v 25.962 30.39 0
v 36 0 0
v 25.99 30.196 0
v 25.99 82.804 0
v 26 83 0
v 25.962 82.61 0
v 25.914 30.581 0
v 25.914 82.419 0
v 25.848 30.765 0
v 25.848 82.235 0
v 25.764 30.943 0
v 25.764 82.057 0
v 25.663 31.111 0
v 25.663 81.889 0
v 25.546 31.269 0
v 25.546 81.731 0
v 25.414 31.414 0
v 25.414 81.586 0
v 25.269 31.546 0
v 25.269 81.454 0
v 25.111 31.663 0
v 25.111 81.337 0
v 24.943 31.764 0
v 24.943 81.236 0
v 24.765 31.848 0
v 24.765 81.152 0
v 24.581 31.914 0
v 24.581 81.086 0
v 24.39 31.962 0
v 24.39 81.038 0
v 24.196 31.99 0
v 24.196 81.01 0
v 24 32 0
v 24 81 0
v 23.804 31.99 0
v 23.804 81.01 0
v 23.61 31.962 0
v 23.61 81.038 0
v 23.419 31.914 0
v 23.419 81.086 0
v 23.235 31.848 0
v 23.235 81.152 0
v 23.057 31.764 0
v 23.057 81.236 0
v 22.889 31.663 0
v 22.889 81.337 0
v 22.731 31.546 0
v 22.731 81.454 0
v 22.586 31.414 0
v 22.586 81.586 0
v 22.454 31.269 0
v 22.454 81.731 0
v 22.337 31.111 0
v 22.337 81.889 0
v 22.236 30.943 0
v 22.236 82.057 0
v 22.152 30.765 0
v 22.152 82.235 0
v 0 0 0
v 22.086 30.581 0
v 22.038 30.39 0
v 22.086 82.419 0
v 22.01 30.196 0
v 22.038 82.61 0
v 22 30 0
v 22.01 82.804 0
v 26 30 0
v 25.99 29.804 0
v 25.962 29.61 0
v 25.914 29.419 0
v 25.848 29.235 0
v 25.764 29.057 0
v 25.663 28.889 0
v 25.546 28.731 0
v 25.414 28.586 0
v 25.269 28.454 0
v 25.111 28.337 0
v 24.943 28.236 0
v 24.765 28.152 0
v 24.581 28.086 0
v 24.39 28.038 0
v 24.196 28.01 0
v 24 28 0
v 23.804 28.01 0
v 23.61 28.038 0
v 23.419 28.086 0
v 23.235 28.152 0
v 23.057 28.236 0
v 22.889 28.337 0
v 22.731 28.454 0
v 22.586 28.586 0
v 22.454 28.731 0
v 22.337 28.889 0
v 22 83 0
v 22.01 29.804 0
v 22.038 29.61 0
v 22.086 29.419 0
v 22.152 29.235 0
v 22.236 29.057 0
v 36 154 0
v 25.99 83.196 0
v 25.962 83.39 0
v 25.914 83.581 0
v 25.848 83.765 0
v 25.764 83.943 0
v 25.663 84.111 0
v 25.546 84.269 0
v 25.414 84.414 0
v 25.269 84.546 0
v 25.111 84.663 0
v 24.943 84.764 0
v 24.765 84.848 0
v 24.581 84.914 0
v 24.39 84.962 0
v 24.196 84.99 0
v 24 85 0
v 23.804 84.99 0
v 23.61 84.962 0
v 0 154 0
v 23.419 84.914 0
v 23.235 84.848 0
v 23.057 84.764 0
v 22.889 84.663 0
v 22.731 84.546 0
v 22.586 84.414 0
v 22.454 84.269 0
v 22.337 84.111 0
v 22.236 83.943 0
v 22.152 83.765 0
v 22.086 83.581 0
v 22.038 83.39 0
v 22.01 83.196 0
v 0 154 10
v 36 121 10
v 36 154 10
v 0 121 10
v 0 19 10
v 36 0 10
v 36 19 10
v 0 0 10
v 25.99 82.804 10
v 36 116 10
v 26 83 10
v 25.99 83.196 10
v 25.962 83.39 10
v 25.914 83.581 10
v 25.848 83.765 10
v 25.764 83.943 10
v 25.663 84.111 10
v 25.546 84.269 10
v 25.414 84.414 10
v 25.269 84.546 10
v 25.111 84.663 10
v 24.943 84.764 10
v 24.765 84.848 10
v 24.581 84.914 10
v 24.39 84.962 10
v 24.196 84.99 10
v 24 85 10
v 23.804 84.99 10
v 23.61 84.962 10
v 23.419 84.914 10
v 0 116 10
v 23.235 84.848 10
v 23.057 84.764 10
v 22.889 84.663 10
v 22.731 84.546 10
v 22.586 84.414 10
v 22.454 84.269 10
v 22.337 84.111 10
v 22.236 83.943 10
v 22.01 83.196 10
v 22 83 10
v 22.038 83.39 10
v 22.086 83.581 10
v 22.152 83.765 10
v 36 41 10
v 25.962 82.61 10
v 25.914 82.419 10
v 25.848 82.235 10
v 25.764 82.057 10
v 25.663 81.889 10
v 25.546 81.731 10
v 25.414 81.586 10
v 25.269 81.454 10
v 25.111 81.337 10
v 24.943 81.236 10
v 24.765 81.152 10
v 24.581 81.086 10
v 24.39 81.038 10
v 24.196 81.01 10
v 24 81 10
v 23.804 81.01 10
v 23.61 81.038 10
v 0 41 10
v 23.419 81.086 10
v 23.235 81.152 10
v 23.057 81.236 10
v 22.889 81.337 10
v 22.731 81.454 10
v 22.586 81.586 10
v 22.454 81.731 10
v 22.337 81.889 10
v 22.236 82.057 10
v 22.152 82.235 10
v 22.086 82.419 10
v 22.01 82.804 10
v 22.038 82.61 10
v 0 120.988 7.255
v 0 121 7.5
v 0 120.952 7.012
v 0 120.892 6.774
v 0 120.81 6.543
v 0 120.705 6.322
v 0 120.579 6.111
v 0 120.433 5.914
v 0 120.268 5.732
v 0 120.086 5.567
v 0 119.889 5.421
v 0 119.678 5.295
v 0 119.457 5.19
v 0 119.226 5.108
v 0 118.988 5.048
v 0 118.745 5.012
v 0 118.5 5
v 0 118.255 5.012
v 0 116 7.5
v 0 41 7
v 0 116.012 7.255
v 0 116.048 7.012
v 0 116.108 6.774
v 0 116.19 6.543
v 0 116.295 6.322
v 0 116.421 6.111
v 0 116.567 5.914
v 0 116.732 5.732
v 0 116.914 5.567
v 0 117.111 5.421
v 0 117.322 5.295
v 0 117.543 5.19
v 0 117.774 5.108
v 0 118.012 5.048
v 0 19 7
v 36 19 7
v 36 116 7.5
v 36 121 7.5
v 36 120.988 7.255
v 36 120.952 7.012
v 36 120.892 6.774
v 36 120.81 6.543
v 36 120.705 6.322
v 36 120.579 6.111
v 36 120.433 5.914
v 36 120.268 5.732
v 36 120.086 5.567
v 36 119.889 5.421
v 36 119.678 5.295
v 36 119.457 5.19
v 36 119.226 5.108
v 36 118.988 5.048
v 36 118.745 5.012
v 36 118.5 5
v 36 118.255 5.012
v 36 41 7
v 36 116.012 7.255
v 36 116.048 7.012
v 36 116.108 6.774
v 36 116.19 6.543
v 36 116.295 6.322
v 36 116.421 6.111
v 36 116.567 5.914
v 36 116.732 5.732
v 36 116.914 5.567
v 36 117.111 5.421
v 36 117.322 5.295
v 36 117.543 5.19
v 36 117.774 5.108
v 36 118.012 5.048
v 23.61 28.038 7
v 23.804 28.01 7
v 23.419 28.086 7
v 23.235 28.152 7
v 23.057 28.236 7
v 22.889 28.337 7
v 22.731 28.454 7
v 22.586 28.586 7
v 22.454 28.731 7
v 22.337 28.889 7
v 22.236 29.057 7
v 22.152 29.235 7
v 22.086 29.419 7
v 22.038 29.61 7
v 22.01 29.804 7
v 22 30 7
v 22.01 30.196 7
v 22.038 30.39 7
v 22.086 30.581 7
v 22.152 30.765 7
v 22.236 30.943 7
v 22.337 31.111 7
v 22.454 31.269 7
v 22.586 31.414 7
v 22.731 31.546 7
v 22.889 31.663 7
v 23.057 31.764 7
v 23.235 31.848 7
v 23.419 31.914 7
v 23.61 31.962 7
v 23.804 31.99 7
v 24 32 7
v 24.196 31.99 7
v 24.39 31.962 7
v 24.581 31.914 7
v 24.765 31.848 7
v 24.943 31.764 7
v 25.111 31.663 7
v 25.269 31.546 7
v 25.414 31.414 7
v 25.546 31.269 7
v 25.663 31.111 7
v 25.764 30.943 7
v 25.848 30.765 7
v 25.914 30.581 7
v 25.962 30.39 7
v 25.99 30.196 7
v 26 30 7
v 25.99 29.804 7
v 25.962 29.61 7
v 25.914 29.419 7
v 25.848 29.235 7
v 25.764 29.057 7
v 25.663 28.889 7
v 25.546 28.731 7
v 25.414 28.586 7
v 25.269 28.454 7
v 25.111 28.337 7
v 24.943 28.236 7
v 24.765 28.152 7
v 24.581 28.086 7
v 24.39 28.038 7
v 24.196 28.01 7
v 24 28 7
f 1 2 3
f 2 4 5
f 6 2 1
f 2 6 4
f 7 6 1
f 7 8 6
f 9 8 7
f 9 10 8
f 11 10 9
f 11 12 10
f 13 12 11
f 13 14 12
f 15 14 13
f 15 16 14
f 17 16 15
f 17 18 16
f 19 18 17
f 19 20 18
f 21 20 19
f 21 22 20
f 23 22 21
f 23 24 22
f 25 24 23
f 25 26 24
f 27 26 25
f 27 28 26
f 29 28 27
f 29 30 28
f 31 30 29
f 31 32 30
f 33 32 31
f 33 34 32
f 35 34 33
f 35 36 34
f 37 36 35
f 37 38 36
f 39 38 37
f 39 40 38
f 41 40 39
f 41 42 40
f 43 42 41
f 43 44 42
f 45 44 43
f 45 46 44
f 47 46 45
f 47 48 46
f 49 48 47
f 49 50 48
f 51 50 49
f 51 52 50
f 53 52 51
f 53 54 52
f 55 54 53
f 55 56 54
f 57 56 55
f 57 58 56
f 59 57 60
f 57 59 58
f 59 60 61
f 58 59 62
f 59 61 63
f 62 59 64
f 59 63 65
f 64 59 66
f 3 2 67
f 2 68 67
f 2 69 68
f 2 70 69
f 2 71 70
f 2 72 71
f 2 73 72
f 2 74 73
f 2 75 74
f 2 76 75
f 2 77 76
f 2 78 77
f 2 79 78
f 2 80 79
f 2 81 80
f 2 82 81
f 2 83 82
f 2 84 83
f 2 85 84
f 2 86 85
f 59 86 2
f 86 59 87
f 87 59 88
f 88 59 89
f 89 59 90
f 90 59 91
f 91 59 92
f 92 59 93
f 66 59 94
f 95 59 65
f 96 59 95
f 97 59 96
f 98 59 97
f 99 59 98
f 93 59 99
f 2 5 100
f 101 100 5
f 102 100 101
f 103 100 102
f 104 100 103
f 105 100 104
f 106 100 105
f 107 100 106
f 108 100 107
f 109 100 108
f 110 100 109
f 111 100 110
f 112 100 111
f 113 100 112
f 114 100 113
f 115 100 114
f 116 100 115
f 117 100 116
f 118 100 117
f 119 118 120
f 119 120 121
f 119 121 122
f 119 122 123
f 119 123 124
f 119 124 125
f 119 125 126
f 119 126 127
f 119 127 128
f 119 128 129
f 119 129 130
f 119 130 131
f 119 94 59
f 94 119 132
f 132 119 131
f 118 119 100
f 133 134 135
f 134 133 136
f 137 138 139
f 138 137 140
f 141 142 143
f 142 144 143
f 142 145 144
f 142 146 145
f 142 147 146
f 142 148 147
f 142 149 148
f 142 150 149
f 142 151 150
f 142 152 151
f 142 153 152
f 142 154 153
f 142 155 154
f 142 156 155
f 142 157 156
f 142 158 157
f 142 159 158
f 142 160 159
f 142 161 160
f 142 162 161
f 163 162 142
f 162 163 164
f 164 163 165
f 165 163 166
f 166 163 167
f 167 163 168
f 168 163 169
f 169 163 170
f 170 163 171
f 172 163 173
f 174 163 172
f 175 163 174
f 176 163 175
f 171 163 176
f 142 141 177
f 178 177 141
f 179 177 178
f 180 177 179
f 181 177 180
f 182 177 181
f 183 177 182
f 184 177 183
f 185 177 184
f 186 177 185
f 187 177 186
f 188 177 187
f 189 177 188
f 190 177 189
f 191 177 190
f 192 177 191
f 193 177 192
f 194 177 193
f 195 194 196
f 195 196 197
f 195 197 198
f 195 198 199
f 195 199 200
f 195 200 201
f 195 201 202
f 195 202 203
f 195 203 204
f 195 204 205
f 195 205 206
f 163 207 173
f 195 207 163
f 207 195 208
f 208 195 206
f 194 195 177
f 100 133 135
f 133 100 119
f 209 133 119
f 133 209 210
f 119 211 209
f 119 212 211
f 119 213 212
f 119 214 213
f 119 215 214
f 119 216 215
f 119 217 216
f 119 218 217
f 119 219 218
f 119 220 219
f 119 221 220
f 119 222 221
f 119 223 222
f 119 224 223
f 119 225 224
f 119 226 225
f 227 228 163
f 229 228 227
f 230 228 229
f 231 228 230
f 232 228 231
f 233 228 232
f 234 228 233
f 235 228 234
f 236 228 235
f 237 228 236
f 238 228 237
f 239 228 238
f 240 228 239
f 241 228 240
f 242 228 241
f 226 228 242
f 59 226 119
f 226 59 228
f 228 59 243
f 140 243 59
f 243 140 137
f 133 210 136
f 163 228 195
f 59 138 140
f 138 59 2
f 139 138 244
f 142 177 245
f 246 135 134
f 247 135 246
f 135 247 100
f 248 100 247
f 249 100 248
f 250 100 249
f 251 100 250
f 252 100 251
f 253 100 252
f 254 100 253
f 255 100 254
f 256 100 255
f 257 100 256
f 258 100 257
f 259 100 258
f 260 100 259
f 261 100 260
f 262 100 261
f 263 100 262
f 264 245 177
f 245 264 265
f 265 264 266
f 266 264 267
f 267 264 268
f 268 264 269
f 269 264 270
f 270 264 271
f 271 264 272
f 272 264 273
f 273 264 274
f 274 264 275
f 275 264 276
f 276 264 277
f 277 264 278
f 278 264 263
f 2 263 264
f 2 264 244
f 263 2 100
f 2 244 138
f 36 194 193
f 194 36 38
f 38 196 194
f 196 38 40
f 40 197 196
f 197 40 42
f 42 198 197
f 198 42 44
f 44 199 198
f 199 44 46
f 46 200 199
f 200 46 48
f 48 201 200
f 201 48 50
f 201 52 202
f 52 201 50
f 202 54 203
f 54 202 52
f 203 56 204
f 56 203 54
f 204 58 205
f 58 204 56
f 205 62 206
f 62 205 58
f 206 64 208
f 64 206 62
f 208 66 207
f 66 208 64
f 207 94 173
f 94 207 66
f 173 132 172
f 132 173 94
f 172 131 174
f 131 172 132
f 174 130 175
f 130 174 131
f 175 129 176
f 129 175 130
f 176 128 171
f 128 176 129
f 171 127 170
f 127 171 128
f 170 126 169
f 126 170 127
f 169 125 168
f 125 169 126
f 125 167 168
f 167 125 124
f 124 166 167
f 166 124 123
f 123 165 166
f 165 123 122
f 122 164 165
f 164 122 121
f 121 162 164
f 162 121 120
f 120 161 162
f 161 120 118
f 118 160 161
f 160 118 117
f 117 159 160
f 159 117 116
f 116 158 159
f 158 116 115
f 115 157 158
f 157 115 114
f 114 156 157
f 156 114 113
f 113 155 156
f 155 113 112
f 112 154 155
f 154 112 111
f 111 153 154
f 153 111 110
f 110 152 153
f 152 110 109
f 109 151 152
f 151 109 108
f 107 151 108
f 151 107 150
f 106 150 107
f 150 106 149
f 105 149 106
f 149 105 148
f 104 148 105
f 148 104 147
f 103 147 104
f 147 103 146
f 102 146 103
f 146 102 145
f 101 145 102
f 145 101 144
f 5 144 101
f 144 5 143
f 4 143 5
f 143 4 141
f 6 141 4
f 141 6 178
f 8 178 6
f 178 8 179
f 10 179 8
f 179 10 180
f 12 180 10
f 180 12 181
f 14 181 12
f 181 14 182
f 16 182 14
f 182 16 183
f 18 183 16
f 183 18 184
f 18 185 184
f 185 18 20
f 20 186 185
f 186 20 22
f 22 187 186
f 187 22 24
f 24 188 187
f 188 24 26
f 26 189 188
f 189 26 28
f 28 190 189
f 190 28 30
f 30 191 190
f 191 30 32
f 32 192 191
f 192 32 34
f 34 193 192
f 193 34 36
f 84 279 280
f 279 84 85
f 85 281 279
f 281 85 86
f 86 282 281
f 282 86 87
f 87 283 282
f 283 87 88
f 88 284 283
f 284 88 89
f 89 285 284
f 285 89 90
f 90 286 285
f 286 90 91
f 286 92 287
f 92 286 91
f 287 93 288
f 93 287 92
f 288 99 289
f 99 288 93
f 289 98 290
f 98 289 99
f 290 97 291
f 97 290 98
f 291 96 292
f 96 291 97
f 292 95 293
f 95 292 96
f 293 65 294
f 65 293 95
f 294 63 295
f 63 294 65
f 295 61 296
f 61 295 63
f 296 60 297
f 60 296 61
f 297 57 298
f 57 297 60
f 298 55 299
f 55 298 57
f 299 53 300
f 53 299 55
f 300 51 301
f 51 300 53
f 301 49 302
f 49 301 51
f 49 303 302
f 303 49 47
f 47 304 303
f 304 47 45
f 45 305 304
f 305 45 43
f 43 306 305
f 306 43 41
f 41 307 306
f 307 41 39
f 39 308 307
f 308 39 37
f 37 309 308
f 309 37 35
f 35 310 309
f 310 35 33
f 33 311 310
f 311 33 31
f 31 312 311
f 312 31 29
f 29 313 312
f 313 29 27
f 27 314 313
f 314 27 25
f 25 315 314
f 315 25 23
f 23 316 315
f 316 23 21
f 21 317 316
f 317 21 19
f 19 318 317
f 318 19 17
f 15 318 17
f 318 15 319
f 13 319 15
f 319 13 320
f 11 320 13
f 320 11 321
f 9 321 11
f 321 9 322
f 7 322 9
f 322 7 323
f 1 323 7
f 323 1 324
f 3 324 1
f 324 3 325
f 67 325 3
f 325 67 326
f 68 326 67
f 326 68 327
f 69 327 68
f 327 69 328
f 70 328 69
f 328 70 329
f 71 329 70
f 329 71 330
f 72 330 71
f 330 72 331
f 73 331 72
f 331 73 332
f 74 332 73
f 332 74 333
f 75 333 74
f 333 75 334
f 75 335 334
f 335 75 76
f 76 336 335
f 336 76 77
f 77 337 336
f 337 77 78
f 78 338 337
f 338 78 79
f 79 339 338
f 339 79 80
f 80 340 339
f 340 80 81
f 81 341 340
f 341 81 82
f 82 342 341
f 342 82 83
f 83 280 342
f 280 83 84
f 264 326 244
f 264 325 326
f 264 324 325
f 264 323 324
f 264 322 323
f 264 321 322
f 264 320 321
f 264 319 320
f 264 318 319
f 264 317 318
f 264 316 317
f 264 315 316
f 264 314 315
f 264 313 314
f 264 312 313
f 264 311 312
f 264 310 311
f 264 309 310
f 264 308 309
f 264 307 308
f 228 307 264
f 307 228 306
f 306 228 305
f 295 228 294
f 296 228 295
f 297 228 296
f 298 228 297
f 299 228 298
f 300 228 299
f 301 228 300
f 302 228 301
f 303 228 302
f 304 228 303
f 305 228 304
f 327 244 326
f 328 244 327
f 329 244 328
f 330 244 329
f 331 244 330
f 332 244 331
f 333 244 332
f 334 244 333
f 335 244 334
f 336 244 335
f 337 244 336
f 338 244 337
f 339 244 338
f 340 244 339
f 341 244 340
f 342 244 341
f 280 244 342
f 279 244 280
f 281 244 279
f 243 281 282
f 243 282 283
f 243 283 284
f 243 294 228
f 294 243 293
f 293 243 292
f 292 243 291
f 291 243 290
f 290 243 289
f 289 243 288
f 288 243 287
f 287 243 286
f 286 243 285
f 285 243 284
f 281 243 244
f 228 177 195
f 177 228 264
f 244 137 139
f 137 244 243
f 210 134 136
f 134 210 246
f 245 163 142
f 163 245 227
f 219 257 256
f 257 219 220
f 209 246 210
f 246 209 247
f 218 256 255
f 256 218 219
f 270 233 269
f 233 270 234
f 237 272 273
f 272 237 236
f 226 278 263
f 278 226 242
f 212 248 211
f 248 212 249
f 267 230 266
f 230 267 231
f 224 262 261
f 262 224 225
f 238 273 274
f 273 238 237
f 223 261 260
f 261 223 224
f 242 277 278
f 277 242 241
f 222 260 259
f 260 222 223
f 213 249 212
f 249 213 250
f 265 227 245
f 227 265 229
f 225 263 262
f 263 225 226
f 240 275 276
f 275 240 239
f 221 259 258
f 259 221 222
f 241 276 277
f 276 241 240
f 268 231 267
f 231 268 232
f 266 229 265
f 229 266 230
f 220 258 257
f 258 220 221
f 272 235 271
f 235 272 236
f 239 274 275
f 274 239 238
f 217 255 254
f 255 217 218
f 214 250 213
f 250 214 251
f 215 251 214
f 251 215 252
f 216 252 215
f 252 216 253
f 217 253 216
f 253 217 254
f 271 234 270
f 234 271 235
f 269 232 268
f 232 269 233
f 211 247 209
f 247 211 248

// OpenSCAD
$fn = 64;

line_1st = 30.00;

bar = [36.00, 154.00, 10.00];

hole_y_pos = 24.0;

hole_1st_line = 30.00;
hole_2nd_line = hole_1st_line + 53.00;
hole_3rd_line = hole_2nd_line + 33.00;

left_adapter_height = 3.00;


bar_space = 2.5;

difference() {
    linear_extrude(bar[2]) {
        difference() {
            square([bar[0], bar[1]]);
            translate([hole_y_pos, hole_1st_line])
                circle(2);
            translate([hole_y_pos, hole_2nd_line])
                circle(2);
        }
    }
    
    translate([0, 30.00 - 11.00, bar[2] - left_adapter_height])
        linear_extrude(left_adapter_height)
            square([bar[0], 22.00]);
    
    translate([0, hole_3rd_line, bar[2] - bar_space])
        linear_extrude(bar_space)
            square([bar[0], bar_space * 2]);
    
    translate([0, hole_3rd_line + bar_space, bar[2] - bar_space])
        rotate([90, 90, 90])
                cylinder(bar[0], r1 = bar_space, r2 = bar_space);
}
